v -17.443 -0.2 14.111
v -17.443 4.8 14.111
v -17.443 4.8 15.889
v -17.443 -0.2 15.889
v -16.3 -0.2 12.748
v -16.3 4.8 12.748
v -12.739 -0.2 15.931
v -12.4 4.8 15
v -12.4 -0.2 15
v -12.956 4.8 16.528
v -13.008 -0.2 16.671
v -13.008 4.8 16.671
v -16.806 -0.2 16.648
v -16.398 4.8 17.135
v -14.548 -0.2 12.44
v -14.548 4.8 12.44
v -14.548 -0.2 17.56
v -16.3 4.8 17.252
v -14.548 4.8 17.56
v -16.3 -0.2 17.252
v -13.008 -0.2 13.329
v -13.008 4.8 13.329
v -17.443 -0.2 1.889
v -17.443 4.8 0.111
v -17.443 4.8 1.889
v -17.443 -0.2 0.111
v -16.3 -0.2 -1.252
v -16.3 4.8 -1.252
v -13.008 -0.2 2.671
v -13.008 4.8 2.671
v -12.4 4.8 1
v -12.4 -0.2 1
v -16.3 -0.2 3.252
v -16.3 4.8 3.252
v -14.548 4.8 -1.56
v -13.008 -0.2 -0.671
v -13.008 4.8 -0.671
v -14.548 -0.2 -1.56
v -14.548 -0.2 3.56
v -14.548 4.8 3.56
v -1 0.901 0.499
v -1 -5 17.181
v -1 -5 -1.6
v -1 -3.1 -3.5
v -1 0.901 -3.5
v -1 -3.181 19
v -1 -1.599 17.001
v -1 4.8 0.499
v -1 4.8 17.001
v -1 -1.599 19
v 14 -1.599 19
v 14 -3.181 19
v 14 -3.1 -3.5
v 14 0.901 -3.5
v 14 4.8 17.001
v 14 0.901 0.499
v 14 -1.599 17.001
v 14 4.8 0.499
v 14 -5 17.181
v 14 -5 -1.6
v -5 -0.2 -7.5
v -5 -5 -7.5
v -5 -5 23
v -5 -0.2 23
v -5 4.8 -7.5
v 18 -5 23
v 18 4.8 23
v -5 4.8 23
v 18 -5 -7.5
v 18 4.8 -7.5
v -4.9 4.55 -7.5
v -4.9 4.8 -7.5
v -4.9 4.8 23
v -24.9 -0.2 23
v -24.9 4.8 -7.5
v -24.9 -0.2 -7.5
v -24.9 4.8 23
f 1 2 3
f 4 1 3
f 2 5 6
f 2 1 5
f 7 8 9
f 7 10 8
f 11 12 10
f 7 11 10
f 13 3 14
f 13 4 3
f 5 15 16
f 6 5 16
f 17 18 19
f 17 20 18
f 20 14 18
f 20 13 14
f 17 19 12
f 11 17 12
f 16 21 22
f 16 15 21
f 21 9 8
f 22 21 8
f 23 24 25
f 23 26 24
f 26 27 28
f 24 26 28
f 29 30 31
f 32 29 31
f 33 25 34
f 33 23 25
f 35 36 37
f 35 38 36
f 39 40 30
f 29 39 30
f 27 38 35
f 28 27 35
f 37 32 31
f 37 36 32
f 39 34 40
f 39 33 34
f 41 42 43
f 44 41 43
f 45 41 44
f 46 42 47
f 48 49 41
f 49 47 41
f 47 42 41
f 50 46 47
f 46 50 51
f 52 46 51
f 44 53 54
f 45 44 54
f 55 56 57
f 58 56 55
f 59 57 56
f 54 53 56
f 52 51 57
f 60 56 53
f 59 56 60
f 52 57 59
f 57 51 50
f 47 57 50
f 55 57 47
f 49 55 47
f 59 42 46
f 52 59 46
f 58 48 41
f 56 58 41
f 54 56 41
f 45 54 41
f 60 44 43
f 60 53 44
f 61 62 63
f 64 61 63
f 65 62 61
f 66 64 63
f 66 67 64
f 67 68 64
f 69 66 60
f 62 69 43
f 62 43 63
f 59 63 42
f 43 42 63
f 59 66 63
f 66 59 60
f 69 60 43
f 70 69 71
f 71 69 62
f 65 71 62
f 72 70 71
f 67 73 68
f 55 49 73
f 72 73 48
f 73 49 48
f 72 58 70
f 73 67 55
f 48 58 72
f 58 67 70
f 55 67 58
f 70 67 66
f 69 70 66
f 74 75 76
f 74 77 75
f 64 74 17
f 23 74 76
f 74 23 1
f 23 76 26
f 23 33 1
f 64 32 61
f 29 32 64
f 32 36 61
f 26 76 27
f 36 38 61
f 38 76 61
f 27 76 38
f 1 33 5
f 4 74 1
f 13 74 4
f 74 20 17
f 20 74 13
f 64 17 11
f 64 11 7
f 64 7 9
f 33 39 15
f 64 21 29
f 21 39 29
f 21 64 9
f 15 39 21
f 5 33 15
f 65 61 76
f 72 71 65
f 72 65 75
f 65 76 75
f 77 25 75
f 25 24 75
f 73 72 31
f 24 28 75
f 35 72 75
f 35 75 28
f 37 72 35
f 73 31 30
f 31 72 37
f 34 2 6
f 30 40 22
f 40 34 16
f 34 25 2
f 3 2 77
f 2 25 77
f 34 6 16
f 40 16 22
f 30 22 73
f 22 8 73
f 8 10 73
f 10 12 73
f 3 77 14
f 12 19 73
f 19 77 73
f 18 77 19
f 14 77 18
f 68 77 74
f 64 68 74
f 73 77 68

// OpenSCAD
// file: nutsnbolts/data-access.scad
// Norm Nuts and Bolts - a OpenSCAD library
// Copyright (C) 2012  Johannes Kneer

// This program is free software: you can redistribute it and/or modify
// it under the terms of the GNU General Public License as published by
// the Free Software Foundation, either version 3 of the License, or
// (at your option) any later version.

// This program is distributed in the hope that it will be useful,
// but WITHOUT ANY WARRANTY; without even the implied warranty of
// MERCHANTABILITY or FITNESS FOR A PARTICULAR PURPOSE.  See the
// GNU General Public License for more details.

// You should have received a copy of the GNU General Public License
// along with this program.  If not, see <http://www.gnu.org/licenses/>.


// DATABASE ACCESS FUNCTIONS AND CONSTANTS



// == CONSTANTS ==

// screw table access keys
_NB_S_DESC            = 0;
_NB_S_FAMKEY			    = 1;
_NB_S_LENGTH          = 2;
_NB_S_NOTHREAD_LENGTH = 3;

_NB_F_DESC			      = 0;
_NB_F_OUTER_DIA       = 1;
_NB_F_INNER_DIA       = 2;
_NB_F_LEAD            = 3;
_NB_F_KEY             = 4;
_NB_F_KEY_DEPTH       = 5;
_NB_F_HEAD_HEIGHT     = 6;
_NB_F_HEAD_DIA        = 7;
_NB_F_NUT_KEY         = 8;
_NB_F_NUT_HEIGHT      = 9;
_NB_F_PITCH_FINE      = 10;
_NB_F_PITCH_MEDIUM    = 11;
_NB_F_PITCH_COARSE    = 12;


// == FUNCTIONS ==

// _get_screw("descriptor")   with descriptor = M8x25
//   find the line for a general object in the data matrix

function _get_screw(n) = data_screw[search([n], data_screw)[0]];
function _get_screw_fam(n) = data_screw_fam[search([_get_screw(n)[_NB_S_FAMKEY]], data_screw_fam)[0]];

function _get_fam(n) = data_screw_fam[search([n], data_screw_fam)[0]];


// _get_XXXXX("descriptor") functions
// find a single property in the database

function _get_desc(n)        = _get_screw(n)[_NB_S_DESC];
function _get_famkey(n)         = _get_screw(n)[_NB_S_FAMKEY];
function _get_length(n)      = _get_screw(n)[_NB_S_LENGTH];
function _get_nt_length(n)   = _get_screw(n)[_NB_S_NOTHREAD_LENGTH];

function _get_outer_dia(n)   = _get_screw_fam(n)[_NB_F_OUTER_DIA];
function _get_inner_dia(n)   = _get_screw_fam(n)[_NB_F_INNER_DIA];
function _get_lead(n)        = _get_screw_fam(n)[_NB_F_LEAD];
function _get_head_height(n) = _get_screw_fam(n)[_NB_F_HEAD_HEIGHT];
function _get_head_dia(n)    = _get_screw_fam(n)[_NB_F_HEAD_DIA];
function _get_nut_key(n)     = _get_screw_fam(n)[_NB_F_NUT_KEY];
function _get_nut_height(n)  = _get_screw_fam(n)[_NB_F_NUT_HEIGHT];
function _get_fine_pitch(n)  = _get_screw_fam(n)[_NB_F_PITCH_FINE];
function _get_medium_pitch(n)  = _get_screw_fam(n)[_NB_F_PITCH_MEDIUM];
function _get_coarse_pitch(n)  = _get_screw_fam(n)[_NB_F_PITCH_COARSE];
// file: keystone.scad
module keystone()
{
rotate([0,0,90]) {
	difference(){
	  translate([0,0,.1]) cube([23,30.5,9.8]);
	  translate([4,4,0]){
		difference(){
	 	 cube([15,22.5,10]);
	       	 translate([-1,-0.001,3.501]) cube([17,2,6.5]);
	    	 translate([-1,2.5,-3.40970]) rotate([45,0,0]) cube([17,2,6.5]);
		 translate([-1,18.501,6.001]) cube([17,4,4]);
	    	 translate([-1,20.5,0]) rotate([-45,0,0]) cube([17,2,6.5]);
 		 }
		}
    	      }
	}


}
// file: nutsnbolts/materials.scad
// Norm Nuts and Bolts - a OpenSCAD library
// Copyright (C) 2012  Johannes Kneer

// This program is free software: you can redistribute it and/or modify
// it under the terms of the GNU General Public License as published by
// the Free Software Foundation, either version 3 of the License, or
// (at your option) any later version.

// This program is distributed in the hope that it will be useful,
// but WITHOUT ANY WARRANTY; without even the implied warranty of
// MERCHANTABILITY or FITNESS FOR A PARTICULAR PURPOSE.  See the
// GNU General Public License for more details.

// You should have received a copy of the GNU General Public License
// along with this program.  If not, see <http://www.gnu.org/licenses/>.


// MATERIALS

// all materials take a no-parameter that should be used to document
// the exact material in code, the number is not yet used in the code 



module stainless(no="1.4301") {
	color([0.45, 0.43, 0.5]) children([0:$children-1]);
}

module steel(no) {
	color([0.65, 0.67, 0.72]) children([0:$children-1]);
}

module iron(no="ST37") {
	color([0.36, 0.33, 0.33]) children([0:$children-1]);
}

// additional colors
CL_ZINC = [0.4, 0.4, 0.4];
// file: configuration.scad
/* [hidden */
// Increase this if your slicer or printer make holes too tight.
extra_radius = 0.2;

// OD = outside diameter, corner to corner.
m3_nut_od = 6.1;
m3_nut_radius = m3_nut_od/2 + 0.2 + extra_radius;
m3_washer_radius = 3.5 + extra_radius;
m3_washer_height = 0.65;

// Major diameter of metric 3mm thread.
m3_head_height = 3;
m3_major = 2.88;
m3_radius = m3_major/2 + extra_radius;
m3_wide_radius = m3_major/2 + extra_radius + 0.2;

// NEMA17 stepper motors.
motor_shaft_diameter = 5;
motor_shaft_radius = motor_shaft_diameter/2 + extra_radius;

// Frame brackets. M3x8mm screws work best with 3.6 mm brackets.
thickness = 3.6;

// OpenBeam or Misumi. Currently only 15x15 mm, but there is a plan
// to make models more parametric and allow 20x20 mm in the future.
extrusion = 15;

// Placement for the NEMA17 stepper motors.
motor_offset = 44;
motor_length = 47;

// M3 screw hole with loose insertion to be used with a nut.
module M3Screw(length=10)
{
	union()
	{
		// Main shaft
		translate([0, 0, m3_head_height])
		cylinder(r=m3_radius, h=length, $fn=20);
		// Head
		cylinder(r=m3_washer_radius, h=m3_head_height+m3_washer_height, $fn=20);
	}
}

// M3 screw with exact dimensions intended for screwing directly into plastic.
module M3ExactScrew(length=10)
{
	union()
	{
		// Main shaft
		translate([0, 0, m3_head_height])
		cylinder(r=m3_radius - extra_radius, h=length, $fn=20);
		// Head
		cylinder(r=m3_washer_radius, h=m3_head_height+m3_washer_height, $fn=20);
	}
}
// main file
include <configuration.scad>;
include <nutsnbolts/cyl_head_bolt.scad>;
include <nutsnbolts/materials.scad>;
include <keystone.scad>

module keystone_mount_body()
{

    translate([-24.9,4.8,-7.5])  rotate([90,0,0]) cube([20,30.5,5]);
    
     
}

module keystone_mount_cuts()
{
   

    rotate([90,0,0]) translate([-15, 15, 8]) hole_through("M5",14);    
    rotate([90,0,0]) translate([-15,  1, 8]) hole_through("M5",14);    

}

module keystone_mount()
{
   difference(){
       keystone_mount_body();
       keystone_mount_cuts();
       }
    translate([-5,-9.9+4.8,23]) rotate([270,270,0]) keystone();
}

keystone_mount();
